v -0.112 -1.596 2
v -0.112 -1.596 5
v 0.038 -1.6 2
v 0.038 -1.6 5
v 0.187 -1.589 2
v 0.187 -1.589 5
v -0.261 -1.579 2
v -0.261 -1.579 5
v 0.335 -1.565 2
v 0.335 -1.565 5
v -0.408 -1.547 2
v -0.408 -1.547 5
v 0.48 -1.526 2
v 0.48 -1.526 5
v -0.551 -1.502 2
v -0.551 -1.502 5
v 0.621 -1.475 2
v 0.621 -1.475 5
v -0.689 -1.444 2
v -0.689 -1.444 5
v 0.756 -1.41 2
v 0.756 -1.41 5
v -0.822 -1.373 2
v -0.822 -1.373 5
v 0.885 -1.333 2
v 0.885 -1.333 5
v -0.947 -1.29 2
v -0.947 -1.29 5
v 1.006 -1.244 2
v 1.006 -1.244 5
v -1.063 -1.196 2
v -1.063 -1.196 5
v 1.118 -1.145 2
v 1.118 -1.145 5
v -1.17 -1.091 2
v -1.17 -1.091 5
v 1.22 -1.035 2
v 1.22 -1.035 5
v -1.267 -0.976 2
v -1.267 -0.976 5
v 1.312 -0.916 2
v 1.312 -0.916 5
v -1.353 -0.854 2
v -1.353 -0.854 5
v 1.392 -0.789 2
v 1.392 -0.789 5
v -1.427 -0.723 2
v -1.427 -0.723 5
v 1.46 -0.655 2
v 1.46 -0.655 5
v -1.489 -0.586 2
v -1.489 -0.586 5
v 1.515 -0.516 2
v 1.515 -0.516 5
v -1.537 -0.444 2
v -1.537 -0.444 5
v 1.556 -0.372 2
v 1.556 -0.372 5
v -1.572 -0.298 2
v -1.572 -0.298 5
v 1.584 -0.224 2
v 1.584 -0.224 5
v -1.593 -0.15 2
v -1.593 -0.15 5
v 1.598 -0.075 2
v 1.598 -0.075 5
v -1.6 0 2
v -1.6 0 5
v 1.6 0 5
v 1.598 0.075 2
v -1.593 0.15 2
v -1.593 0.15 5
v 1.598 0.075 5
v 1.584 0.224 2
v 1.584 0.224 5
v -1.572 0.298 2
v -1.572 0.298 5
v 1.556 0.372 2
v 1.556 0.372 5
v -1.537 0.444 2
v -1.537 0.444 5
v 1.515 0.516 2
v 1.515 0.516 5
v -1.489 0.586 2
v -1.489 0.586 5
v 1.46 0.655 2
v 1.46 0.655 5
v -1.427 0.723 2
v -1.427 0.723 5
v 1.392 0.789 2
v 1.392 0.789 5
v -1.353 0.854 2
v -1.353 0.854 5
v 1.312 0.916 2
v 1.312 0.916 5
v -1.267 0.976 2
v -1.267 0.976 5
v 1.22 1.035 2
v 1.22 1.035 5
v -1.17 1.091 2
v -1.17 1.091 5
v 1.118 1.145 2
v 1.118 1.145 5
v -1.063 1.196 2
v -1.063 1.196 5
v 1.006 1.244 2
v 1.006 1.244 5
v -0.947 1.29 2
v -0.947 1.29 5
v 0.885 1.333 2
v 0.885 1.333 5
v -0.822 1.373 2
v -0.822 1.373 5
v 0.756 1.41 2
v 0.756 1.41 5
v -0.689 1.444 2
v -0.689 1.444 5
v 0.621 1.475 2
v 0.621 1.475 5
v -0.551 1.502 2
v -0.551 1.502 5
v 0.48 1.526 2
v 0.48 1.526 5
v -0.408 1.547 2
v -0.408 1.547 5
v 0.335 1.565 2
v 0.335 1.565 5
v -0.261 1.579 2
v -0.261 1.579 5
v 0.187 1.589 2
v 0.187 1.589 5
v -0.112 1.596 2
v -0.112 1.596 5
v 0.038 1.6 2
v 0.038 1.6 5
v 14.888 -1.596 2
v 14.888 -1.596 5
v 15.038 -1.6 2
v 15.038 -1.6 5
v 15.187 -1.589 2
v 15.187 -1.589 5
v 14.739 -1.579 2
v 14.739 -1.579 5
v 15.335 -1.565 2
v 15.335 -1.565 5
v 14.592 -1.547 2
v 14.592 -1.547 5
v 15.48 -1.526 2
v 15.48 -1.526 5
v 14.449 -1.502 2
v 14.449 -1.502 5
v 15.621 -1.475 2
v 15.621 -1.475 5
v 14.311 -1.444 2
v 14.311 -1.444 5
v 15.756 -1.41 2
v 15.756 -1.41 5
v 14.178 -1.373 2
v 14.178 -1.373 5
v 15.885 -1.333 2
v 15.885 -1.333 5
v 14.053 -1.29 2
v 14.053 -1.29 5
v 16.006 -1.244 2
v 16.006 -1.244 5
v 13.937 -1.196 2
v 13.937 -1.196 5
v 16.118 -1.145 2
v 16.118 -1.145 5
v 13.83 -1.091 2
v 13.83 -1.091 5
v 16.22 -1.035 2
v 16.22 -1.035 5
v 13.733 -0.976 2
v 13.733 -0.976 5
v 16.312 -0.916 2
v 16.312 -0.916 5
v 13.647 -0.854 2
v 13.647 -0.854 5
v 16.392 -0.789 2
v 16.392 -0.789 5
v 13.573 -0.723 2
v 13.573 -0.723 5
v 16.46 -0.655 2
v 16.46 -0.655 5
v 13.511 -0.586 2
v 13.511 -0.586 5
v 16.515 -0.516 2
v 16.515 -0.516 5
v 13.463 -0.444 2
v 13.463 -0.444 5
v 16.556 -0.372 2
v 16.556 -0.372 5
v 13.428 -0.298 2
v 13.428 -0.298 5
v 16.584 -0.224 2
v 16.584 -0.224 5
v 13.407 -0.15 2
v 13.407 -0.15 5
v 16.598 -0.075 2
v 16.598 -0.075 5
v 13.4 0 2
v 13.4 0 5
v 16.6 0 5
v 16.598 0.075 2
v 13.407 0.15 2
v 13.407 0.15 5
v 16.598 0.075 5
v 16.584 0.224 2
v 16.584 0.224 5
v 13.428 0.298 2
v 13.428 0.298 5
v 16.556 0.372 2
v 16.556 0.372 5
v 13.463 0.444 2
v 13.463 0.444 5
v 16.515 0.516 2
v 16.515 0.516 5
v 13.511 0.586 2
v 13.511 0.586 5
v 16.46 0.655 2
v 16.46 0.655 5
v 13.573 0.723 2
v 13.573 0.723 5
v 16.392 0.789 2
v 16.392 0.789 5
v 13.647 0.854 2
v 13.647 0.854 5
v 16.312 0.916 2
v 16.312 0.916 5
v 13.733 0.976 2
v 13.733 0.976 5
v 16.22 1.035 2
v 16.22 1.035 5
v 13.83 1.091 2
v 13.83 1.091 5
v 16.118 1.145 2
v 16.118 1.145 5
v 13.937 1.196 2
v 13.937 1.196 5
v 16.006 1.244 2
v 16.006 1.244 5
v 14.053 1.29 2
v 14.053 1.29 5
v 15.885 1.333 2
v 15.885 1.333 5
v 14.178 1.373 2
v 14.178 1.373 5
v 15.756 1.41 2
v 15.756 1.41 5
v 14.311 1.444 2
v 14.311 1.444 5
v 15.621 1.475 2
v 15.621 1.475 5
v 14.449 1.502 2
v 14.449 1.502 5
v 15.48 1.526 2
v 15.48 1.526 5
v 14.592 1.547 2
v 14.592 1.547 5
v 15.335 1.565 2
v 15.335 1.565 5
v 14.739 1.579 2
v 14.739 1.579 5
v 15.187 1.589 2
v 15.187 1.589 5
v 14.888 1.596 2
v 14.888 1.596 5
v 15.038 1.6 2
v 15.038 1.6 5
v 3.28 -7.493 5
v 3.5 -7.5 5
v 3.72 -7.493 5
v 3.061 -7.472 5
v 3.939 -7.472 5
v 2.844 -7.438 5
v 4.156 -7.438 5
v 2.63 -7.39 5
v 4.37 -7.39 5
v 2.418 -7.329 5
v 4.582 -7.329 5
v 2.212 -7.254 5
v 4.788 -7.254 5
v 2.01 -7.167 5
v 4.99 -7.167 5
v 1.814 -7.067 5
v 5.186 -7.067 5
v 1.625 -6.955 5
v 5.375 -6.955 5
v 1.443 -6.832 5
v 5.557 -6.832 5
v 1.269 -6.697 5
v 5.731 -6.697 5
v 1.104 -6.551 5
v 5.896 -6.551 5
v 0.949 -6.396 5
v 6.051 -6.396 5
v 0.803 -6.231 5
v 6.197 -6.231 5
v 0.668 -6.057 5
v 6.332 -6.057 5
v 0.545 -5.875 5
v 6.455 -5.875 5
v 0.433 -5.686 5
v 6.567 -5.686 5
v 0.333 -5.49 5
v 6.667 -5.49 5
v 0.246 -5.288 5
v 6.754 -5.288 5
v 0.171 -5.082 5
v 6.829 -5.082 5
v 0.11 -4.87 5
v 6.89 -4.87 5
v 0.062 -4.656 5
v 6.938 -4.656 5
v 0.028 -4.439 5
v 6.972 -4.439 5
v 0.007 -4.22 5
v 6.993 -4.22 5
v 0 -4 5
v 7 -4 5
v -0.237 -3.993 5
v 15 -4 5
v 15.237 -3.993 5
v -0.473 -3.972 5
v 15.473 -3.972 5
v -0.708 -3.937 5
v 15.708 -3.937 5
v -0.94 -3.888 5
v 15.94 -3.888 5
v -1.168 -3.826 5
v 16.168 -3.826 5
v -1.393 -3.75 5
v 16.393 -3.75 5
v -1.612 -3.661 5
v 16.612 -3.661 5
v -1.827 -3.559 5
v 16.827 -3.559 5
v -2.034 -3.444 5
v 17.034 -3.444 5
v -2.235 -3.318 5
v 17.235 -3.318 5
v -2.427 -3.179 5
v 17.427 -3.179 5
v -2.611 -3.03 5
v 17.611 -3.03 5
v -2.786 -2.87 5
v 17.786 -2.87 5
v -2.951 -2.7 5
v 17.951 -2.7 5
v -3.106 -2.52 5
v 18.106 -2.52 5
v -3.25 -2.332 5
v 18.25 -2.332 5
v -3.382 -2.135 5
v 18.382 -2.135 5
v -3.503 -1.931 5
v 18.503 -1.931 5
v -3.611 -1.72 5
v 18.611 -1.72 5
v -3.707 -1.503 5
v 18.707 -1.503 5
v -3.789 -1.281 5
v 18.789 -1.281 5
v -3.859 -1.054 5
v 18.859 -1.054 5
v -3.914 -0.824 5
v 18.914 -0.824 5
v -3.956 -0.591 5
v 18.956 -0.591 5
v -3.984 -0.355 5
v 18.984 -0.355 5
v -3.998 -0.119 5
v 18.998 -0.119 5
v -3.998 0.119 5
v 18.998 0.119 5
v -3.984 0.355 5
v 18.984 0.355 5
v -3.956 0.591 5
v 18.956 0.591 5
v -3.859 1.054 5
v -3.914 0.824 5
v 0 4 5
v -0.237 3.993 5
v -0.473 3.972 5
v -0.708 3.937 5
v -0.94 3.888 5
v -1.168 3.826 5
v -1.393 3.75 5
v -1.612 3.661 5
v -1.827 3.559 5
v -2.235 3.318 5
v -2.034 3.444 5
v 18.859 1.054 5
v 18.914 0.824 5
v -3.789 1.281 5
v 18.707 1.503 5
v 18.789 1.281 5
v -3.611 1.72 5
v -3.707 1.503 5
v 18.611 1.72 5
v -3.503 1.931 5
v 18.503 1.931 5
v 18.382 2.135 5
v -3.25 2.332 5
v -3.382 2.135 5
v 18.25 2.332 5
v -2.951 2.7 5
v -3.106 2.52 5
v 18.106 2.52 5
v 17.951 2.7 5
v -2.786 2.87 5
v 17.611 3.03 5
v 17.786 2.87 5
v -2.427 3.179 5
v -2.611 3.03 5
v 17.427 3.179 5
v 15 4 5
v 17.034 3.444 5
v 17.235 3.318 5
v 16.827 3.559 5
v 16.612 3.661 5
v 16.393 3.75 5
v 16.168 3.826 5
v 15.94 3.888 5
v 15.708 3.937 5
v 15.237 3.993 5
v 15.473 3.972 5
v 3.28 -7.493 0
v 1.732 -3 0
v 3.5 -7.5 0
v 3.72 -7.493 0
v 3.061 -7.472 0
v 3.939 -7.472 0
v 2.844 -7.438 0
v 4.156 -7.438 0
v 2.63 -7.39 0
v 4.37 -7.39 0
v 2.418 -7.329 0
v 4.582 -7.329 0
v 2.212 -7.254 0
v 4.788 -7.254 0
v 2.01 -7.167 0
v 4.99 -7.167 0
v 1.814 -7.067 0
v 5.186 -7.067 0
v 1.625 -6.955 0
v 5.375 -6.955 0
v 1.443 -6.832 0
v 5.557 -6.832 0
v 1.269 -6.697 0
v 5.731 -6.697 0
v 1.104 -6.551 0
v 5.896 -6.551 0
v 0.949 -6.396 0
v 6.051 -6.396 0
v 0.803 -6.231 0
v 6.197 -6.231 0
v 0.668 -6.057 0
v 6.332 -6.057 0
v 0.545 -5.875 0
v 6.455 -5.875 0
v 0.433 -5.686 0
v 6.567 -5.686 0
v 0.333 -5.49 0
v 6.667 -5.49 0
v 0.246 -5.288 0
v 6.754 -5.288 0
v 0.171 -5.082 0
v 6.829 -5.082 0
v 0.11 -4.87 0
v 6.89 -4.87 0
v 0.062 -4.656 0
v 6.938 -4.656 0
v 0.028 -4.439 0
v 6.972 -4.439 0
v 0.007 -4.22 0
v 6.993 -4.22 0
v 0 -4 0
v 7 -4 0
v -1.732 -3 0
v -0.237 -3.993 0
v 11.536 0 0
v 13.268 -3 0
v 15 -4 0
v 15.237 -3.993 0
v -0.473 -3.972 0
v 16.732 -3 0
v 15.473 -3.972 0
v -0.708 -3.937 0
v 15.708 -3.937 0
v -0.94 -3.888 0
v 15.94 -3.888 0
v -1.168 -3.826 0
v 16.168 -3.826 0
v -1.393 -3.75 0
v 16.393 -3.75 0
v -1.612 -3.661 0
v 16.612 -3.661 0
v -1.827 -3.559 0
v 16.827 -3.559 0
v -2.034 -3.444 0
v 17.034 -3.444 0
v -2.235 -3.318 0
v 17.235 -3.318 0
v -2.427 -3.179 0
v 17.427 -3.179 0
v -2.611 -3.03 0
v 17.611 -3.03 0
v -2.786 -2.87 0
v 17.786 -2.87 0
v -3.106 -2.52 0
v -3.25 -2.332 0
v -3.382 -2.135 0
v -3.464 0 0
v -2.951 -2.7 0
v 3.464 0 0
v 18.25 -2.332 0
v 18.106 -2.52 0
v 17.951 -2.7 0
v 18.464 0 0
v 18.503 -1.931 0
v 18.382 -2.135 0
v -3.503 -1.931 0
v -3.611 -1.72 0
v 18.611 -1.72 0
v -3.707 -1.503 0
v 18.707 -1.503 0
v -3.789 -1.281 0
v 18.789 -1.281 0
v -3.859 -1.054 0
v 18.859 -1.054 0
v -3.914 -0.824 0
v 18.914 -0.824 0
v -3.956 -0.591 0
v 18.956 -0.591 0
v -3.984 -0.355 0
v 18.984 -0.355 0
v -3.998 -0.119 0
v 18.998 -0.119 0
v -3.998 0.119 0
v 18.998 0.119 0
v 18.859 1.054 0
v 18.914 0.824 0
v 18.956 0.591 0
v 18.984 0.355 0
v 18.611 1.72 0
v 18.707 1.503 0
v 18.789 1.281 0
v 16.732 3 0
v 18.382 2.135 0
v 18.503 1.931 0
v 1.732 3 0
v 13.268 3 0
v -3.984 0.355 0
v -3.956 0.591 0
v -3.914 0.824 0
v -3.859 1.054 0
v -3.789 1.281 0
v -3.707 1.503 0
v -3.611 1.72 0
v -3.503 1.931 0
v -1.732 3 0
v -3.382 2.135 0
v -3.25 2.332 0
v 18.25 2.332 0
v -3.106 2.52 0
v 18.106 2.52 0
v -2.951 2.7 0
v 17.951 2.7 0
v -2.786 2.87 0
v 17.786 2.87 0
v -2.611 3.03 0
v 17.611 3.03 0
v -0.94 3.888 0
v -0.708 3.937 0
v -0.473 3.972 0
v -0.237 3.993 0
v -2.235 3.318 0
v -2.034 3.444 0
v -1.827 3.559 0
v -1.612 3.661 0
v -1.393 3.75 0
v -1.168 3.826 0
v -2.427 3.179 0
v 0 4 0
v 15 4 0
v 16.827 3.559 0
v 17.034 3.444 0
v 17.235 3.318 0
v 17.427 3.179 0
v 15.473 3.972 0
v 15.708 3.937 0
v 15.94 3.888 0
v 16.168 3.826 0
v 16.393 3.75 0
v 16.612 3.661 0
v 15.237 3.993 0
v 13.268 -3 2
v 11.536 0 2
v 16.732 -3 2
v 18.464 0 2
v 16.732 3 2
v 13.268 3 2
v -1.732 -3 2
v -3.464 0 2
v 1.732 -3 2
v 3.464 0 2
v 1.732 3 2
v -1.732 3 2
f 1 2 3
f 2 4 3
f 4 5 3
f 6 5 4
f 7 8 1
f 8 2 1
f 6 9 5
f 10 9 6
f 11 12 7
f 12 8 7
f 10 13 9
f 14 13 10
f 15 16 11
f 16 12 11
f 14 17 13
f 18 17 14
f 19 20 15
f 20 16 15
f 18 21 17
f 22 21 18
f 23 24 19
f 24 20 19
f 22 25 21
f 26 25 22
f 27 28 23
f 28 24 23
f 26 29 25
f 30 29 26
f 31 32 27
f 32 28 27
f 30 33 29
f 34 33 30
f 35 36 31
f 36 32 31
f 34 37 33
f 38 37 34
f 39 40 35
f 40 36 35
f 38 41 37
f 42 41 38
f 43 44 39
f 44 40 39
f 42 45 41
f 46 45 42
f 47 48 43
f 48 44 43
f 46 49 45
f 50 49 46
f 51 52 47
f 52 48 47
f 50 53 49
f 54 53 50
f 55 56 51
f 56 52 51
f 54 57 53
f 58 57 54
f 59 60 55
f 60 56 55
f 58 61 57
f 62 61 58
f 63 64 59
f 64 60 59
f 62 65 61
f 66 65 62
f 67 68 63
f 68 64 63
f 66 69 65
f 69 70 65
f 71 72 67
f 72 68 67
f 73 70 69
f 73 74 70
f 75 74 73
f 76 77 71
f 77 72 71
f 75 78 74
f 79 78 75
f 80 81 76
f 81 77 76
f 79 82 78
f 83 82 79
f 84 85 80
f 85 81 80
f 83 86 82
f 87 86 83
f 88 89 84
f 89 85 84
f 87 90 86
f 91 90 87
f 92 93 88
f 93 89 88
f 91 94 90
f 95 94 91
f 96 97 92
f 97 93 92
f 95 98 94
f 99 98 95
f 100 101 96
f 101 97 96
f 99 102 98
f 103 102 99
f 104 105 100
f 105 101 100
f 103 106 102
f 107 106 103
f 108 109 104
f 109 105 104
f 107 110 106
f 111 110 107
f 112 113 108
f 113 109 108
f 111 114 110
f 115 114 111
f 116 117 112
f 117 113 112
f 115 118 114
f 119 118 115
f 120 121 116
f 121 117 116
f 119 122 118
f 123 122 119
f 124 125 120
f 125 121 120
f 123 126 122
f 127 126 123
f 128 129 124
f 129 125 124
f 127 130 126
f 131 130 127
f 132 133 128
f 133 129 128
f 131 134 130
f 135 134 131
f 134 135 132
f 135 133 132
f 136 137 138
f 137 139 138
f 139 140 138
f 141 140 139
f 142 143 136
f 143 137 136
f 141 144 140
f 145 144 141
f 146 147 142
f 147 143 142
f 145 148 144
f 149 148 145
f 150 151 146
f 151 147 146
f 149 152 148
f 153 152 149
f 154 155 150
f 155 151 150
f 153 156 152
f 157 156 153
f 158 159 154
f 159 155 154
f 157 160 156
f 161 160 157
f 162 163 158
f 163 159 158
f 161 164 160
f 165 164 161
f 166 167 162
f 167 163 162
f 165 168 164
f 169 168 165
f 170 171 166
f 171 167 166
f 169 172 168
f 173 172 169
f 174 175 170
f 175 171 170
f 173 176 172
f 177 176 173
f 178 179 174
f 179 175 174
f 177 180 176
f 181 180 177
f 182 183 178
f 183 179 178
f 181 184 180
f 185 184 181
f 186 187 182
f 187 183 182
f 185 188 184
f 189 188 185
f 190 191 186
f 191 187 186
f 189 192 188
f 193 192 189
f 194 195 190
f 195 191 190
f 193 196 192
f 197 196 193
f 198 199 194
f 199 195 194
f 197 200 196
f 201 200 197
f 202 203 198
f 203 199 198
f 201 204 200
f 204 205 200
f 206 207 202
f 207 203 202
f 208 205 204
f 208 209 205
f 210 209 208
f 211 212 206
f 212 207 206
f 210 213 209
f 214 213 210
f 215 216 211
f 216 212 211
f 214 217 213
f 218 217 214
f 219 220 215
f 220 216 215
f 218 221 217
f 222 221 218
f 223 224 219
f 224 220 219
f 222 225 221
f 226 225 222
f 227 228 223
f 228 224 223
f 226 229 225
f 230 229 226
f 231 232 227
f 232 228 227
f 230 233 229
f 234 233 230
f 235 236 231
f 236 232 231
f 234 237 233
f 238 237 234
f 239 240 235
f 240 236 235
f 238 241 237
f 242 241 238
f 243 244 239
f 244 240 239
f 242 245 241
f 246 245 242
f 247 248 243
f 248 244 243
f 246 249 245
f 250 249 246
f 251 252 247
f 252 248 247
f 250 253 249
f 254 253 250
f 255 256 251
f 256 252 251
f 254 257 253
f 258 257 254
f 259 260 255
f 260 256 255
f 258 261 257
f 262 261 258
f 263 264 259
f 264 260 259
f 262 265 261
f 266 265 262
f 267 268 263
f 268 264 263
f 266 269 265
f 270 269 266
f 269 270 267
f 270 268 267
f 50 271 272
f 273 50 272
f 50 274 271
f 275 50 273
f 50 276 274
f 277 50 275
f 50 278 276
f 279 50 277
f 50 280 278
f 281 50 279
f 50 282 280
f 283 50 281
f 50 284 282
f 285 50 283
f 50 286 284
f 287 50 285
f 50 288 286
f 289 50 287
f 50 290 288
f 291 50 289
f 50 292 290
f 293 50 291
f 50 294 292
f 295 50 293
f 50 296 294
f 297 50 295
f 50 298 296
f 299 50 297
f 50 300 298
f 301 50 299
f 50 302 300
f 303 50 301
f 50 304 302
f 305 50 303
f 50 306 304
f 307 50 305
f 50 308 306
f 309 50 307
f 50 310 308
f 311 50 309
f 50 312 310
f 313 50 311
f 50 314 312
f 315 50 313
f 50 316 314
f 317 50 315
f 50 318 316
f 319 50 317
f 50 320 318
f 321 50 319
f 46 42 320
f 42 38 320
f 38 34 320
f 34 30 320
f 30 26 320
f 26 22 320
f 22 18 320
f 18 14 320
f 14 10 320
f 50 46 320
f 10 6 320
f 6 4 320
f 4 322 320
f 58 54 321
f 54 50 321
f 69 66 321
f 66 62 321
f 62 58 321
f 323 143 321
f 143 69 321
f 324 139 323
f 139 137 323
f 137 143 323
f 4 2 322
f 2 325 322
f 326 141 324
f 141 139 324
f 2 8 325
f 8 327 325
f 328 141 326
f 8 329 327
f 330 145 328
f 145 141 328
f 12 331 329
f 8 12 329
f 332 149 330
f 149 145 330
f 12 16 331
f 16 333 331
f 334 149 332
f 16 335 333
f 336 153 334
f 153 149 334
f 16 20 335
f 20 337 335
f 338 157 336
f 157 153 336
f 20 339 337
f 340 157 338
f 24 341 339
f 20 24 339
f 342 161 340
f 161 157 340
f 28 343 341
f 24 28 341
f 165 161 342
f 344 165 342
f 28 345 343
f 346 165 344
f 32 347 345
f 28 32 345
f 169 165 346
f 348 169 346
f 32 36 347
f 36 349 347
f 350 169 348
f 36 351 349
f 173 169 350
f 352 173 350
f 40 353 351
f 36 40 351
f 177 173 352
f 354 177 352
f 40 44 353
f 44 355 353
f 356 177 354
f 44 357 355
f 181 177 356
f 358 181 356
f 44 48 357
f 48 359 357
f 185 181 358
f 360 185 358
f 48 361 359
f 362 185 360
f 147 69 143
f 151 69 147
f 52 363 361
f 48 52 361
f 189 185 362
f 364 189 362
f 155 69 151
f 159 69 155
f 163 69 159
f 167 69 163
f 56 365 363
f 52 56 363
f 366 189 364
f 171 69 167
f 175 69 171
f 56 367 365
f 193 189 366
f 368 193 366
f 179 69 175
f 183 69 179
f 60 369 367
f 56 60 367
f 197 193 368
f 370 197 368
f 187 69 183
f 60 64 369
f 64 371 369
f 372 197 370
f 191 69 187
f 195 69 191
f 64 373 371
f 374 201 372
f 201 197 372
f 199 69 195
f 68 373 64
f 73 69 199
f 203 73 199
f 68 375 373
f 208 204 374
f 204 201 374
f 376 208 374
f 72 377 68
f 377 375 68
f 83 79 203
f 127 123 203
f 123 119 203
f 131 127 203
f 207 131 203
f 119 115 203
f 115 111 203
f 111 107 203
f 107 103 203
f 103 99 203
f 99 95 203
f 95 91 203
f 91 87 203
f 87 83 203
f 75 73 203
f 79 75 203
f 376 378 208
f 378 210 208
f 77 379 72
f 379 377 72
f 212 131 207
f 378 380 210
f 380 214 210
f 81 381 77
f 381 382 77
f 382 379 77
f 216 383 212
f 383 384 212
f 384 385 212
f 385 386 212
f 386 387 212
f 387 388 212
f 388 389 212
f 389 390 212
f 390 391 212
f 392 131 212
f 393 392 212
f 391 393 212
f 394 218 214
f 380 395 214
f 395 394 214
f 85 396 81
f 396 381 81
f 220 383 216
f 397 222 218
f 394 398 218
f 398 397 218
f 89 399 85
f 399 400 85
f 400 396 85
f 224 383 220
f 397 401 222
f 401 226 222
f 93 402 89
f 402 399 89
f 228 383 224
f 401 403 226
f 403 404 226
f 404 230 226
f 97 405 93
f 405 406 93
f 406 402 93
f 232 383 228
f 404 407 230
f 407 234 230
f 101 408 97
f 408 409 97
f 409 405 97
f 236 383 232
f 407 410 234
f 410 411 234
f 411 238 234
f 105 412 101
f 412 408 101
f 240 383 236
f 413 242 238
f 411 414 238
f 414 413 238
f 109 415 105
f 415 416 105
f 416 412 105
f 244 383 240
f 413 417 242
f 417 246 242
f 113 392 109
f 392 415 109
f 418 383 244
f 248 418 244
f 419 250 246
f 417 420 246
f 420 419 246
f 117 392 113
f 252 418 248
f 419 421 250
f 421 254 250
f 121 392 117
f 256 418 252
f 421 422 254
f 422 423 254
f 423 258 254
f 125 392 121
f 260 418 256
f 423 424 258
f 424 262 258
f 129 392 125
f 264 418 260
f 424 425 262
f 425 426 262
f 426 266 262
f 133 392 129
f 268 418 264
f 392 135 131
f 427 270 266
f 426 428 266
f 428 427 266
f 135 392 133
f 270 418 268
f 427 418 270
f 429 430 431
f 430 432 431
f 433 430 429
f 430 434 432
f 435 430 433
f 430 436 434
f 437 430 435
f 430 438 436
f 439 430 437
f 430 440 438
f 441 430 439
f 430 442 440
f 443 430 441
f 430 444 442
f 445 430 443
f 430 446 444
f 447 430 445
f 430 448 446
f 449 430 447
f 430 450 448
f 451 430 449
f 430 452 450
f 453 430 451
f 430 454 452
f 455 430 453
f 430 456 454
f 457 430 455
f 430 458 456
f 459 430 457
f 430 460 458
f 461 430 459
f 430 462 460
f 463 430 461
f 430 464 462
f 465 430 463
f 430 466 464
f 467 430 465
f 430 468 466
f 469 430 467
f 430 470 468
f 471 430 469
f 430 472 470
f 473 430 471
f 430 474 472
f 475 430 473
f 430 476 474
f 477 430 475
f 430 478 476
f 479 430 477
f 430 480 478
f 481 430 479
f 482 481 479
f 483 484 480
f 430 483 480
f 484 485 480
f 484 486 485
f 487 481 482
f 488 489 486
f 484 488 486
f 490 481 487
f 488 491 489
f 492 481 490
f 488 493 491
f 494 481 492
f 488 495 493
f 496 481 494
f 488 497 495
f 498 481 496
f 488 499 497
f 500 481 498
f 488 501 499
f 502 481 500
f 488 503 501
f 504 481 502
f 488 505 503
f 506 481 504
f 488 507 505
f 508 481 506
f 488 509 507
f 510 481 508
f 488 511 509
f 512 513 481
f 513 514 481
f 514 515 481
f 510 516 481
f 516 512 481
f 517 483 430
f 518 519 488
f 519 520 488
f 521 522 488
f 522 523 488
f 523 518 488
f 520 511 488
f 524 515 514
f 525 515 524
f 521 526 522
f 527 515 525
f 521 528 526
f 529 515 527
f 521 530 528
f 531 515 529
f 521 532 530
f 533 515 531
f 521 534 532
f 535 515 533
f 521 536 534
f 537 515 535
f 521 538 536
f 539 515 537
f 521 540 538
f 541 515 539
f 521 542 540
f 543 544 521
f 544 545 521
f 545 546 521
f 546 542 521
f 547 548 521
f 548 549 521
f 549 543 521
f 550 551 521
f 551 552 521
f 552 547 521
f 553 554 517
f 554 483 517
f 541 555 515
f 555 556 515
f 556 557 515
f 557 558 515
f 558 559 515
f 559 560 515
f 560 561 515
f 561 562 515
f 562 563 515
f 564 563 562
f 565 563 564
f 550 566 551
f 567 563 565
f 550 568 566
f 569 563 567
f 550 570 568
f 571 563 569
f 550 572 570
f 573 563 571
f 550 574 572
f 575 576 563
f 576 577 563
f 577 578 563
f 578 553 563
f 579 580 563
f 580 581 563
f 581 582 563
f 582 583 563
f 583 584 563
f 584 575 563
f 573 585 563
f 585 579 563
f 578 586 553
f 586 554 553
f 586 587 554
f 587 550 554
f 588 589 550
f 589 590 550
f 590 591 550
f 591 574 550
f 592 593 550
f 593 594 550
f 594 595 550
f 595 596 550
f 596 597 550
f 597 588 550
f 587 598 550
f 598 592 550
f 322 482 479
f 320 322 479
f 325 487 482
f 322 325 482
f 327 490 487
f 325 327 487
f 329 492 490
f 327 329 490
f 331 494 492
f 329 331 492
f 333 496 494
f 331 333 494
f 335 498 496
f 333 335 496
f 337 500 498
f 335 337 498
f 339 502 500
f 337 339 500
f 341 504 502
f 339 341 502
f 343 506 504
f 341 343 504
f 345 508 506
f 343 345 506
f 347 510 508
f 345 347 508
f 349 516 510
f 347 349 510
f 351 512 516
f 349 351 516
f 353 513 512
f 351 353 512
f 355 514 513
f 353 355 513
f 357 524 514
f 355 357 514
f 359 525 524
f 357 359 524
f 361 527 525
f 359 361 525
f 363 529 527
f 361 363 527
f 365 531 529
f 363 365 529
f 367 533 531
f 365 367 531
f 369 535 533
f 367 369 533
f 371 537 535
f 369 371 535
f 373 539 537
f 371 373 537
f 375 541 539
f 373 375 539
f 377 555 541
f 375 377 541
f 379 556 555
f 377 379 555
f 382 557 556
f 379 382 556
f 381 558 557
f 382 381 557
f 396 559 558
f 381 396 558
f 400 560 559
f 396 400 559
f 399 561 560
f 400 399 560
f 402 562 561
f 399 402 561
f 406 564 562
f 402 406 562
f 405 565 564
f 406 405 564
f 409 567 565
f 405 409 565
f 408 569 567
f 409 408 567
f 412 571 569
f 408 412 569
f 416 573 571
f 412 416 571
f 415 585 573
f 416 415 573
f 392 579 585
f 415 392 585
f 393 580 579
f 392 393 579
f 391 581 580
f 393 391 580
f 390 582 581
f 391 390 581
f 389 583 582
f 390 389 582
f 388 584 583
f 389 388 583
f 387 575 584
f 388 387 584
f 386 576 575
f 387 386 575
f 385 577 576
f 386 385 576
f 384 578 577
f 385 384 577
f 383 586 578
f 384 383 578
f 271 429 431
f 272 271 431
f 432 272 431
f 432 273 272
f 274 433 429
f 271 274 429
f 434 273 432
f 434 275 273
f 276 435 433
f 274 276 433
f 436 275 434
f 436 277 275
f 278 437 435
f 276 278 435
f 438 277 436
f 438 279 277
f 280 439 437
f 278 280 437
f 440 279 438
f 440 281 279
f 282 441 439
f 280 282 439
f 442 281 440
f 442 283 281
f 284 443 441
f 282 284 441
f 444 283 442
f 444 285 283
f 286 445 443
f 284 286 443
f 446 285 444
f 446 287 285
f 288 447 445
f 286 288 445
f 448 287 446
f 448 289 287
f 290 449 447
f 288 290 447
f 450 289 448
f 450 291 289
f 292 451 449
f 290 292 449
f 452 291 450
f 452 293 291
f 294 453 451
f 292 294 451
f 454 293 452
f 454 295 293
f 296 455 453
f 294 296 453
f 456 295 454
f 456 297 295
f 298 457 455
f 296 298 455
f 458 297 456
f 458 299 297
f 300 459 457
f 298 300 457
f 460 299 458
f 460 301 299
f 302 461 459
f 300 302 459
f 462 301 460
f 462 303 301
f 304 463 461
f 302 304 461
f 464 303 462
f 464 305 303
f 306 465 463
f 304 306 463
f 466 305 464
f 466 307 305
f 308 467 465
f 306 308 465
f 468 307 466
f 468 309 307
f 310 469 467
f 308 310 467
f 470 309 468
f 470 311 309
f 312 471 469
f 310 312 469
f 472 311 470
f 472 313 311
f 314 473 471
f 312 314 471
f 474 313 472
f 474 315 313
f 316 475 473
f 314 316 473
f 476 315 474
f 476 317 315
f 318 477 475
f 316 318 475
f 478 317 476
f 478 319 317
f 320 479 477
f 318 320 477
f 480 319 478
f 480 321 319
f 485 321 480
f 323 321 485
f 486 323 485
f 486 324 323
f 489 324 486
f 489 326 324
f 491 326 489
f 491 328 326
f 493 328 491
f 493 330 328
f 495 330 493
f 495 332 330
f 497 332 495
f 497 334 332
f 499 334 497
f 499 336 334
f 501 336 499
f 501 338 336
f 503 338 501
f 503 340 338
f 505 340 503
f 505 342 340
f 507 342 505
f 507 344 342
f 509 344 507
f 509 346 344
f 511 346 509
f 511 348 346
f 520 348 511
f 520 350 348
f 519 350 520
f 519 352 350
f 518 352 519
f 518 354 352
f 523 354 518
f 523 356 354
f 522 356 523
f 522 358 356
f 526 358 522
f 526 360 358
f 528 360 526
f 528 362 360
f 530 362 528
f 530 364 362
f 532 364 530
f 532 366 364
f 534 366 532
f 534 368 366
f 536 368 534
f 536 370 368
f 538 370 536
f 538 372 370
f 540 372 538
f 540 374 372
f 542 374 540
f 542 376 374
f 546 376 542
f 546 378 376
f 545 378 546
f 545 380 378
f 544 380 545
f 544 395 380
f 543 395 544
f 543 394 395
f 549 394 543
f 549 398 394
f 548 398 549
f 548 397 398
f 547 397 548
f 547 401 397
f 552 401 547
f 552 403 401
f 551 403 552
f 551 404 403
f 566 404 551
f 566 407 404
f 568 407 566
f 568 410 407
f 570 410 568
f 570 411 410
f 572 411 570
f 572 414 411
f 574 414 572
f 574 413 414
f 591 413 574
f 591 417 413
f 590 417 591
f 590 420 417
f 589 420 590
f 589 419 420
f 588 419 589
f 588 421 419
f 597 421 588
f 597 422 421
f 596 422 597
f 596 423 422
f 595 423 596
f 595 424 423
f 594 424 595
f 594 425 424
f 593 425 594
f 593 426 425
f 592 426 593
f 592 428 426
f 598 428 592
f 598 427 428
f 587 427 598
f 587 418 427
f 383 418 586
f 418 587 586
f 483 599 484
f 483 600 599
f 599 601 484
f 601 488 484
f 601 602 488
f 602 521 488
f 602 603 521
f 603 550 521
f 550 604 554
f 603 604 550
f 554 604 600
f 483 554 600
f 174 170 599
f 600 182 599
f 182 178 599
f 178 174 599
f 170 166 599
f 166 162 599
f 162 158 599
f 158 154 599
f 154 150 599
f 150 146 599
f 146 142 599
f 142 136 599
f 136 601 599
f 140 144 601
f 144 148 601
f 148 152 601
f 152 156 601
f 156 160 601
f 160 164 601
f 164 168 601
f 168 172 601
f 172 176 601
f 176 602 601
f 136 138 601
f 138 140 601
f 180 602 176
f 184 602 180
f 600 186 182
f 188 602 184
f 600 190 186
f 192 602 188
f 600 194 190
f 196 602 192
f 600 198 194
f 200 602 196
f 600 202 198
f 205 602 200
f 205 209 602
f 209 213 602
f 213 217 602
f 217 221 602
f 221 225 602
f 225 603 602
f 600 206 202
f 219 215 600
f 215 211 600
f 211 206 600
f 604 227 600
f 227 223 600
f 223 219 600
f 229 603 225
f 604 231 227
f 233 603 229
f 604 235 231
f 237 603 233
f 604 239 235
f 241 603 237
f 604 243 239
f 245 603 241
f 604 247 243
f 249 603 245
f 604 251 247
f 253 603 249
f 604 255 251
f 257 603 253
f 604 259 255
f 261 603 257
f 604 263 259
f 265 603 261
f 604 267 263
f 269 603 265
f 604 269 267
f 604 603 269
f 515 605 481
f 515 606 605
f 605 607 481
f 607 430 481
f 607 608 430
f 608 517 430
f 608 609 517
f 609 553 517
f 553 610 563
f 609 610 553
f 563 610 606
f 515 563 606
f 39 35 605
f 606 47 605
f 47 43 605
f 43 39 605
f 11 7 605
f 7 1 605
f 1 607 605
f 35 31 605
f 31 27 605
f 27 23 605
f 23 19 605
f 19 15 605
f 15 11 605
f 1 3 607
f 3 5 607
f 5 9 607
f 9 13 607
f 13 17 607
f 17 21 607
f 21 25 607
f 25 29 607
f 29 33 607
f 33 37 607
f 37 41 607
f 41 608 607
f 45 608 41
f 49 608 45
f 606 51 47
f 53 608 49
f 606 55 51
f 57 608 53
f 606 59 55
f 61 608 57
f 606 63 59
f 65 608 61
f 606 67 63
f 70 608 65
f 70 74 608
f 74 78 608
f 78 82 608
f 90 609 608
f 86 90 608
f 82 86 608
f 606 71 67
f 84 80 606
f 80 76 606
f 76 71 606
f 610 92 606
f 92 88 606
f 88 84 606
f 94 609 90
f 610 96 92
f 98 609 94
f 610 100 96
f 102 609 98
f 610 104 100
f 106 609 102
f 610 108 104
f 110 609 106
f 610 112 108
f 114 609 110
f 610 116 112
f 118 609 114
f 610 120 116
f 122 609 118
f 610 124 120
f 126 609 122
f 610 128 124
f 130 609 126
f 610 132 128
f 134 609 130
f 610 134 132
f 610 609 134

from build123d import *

# Parameters (mm, degrees)
SKETCH1_R           = 1.6
BOSS_EXTRUDE1_DEPTH = 5
CUT_EXTRUDE1_DEPTH  = 2


with BuildPart() as part:
    # Sketch1 → Boss-Extrude1 (new body)
    with BuildSketch(Plane.XY):
        with BuildLine():
            Line((0, 4), (15, 4))
            ThreePointArc((15, 4), (19, 0), (15, -4))
            Line((15, -4), (7, -4))
            ThreePointArc((7, -4), (3.5, -7.5), (0, -4))
            ThreePointArc((0, -4), (-4, 0), (0, 4))
        make_face()
        Circle(SKETCH1_R, mode=Mode.SUBTRACT)
        with Locations((15, 0)):
            Circle(SKETCH1_R, mode=Mode.SUBTRACT)
    extrude(amount=BOSS_EXTRUDE1_DEPTH)

    # Sketch2 → Cut-Extrude1 (cut)
    with BuildSketch(Plane(origin=(0, 0, 0), x_dir=(-1, 0, 0), z_dir=(0, 0, -1))):
        Polygon((3.464101615, 0), (1.732050808, 3), (-1.732050808, 3), (-3.464101615, 0), (-1.732050808, -3), (1.732050808, -3), align=None)
        Polygon((-11.535898385, 0), (-13.267949192, 3), (-16.732050808, 3), (-18.464101615, 0), (-16.732050808, -3), (-13.267949192, -3), align=None)
    extrude(amount=-CUT_EXTRUDE1_DEPTH, mode=Mode.SUBTRACT)


solid = part.part
